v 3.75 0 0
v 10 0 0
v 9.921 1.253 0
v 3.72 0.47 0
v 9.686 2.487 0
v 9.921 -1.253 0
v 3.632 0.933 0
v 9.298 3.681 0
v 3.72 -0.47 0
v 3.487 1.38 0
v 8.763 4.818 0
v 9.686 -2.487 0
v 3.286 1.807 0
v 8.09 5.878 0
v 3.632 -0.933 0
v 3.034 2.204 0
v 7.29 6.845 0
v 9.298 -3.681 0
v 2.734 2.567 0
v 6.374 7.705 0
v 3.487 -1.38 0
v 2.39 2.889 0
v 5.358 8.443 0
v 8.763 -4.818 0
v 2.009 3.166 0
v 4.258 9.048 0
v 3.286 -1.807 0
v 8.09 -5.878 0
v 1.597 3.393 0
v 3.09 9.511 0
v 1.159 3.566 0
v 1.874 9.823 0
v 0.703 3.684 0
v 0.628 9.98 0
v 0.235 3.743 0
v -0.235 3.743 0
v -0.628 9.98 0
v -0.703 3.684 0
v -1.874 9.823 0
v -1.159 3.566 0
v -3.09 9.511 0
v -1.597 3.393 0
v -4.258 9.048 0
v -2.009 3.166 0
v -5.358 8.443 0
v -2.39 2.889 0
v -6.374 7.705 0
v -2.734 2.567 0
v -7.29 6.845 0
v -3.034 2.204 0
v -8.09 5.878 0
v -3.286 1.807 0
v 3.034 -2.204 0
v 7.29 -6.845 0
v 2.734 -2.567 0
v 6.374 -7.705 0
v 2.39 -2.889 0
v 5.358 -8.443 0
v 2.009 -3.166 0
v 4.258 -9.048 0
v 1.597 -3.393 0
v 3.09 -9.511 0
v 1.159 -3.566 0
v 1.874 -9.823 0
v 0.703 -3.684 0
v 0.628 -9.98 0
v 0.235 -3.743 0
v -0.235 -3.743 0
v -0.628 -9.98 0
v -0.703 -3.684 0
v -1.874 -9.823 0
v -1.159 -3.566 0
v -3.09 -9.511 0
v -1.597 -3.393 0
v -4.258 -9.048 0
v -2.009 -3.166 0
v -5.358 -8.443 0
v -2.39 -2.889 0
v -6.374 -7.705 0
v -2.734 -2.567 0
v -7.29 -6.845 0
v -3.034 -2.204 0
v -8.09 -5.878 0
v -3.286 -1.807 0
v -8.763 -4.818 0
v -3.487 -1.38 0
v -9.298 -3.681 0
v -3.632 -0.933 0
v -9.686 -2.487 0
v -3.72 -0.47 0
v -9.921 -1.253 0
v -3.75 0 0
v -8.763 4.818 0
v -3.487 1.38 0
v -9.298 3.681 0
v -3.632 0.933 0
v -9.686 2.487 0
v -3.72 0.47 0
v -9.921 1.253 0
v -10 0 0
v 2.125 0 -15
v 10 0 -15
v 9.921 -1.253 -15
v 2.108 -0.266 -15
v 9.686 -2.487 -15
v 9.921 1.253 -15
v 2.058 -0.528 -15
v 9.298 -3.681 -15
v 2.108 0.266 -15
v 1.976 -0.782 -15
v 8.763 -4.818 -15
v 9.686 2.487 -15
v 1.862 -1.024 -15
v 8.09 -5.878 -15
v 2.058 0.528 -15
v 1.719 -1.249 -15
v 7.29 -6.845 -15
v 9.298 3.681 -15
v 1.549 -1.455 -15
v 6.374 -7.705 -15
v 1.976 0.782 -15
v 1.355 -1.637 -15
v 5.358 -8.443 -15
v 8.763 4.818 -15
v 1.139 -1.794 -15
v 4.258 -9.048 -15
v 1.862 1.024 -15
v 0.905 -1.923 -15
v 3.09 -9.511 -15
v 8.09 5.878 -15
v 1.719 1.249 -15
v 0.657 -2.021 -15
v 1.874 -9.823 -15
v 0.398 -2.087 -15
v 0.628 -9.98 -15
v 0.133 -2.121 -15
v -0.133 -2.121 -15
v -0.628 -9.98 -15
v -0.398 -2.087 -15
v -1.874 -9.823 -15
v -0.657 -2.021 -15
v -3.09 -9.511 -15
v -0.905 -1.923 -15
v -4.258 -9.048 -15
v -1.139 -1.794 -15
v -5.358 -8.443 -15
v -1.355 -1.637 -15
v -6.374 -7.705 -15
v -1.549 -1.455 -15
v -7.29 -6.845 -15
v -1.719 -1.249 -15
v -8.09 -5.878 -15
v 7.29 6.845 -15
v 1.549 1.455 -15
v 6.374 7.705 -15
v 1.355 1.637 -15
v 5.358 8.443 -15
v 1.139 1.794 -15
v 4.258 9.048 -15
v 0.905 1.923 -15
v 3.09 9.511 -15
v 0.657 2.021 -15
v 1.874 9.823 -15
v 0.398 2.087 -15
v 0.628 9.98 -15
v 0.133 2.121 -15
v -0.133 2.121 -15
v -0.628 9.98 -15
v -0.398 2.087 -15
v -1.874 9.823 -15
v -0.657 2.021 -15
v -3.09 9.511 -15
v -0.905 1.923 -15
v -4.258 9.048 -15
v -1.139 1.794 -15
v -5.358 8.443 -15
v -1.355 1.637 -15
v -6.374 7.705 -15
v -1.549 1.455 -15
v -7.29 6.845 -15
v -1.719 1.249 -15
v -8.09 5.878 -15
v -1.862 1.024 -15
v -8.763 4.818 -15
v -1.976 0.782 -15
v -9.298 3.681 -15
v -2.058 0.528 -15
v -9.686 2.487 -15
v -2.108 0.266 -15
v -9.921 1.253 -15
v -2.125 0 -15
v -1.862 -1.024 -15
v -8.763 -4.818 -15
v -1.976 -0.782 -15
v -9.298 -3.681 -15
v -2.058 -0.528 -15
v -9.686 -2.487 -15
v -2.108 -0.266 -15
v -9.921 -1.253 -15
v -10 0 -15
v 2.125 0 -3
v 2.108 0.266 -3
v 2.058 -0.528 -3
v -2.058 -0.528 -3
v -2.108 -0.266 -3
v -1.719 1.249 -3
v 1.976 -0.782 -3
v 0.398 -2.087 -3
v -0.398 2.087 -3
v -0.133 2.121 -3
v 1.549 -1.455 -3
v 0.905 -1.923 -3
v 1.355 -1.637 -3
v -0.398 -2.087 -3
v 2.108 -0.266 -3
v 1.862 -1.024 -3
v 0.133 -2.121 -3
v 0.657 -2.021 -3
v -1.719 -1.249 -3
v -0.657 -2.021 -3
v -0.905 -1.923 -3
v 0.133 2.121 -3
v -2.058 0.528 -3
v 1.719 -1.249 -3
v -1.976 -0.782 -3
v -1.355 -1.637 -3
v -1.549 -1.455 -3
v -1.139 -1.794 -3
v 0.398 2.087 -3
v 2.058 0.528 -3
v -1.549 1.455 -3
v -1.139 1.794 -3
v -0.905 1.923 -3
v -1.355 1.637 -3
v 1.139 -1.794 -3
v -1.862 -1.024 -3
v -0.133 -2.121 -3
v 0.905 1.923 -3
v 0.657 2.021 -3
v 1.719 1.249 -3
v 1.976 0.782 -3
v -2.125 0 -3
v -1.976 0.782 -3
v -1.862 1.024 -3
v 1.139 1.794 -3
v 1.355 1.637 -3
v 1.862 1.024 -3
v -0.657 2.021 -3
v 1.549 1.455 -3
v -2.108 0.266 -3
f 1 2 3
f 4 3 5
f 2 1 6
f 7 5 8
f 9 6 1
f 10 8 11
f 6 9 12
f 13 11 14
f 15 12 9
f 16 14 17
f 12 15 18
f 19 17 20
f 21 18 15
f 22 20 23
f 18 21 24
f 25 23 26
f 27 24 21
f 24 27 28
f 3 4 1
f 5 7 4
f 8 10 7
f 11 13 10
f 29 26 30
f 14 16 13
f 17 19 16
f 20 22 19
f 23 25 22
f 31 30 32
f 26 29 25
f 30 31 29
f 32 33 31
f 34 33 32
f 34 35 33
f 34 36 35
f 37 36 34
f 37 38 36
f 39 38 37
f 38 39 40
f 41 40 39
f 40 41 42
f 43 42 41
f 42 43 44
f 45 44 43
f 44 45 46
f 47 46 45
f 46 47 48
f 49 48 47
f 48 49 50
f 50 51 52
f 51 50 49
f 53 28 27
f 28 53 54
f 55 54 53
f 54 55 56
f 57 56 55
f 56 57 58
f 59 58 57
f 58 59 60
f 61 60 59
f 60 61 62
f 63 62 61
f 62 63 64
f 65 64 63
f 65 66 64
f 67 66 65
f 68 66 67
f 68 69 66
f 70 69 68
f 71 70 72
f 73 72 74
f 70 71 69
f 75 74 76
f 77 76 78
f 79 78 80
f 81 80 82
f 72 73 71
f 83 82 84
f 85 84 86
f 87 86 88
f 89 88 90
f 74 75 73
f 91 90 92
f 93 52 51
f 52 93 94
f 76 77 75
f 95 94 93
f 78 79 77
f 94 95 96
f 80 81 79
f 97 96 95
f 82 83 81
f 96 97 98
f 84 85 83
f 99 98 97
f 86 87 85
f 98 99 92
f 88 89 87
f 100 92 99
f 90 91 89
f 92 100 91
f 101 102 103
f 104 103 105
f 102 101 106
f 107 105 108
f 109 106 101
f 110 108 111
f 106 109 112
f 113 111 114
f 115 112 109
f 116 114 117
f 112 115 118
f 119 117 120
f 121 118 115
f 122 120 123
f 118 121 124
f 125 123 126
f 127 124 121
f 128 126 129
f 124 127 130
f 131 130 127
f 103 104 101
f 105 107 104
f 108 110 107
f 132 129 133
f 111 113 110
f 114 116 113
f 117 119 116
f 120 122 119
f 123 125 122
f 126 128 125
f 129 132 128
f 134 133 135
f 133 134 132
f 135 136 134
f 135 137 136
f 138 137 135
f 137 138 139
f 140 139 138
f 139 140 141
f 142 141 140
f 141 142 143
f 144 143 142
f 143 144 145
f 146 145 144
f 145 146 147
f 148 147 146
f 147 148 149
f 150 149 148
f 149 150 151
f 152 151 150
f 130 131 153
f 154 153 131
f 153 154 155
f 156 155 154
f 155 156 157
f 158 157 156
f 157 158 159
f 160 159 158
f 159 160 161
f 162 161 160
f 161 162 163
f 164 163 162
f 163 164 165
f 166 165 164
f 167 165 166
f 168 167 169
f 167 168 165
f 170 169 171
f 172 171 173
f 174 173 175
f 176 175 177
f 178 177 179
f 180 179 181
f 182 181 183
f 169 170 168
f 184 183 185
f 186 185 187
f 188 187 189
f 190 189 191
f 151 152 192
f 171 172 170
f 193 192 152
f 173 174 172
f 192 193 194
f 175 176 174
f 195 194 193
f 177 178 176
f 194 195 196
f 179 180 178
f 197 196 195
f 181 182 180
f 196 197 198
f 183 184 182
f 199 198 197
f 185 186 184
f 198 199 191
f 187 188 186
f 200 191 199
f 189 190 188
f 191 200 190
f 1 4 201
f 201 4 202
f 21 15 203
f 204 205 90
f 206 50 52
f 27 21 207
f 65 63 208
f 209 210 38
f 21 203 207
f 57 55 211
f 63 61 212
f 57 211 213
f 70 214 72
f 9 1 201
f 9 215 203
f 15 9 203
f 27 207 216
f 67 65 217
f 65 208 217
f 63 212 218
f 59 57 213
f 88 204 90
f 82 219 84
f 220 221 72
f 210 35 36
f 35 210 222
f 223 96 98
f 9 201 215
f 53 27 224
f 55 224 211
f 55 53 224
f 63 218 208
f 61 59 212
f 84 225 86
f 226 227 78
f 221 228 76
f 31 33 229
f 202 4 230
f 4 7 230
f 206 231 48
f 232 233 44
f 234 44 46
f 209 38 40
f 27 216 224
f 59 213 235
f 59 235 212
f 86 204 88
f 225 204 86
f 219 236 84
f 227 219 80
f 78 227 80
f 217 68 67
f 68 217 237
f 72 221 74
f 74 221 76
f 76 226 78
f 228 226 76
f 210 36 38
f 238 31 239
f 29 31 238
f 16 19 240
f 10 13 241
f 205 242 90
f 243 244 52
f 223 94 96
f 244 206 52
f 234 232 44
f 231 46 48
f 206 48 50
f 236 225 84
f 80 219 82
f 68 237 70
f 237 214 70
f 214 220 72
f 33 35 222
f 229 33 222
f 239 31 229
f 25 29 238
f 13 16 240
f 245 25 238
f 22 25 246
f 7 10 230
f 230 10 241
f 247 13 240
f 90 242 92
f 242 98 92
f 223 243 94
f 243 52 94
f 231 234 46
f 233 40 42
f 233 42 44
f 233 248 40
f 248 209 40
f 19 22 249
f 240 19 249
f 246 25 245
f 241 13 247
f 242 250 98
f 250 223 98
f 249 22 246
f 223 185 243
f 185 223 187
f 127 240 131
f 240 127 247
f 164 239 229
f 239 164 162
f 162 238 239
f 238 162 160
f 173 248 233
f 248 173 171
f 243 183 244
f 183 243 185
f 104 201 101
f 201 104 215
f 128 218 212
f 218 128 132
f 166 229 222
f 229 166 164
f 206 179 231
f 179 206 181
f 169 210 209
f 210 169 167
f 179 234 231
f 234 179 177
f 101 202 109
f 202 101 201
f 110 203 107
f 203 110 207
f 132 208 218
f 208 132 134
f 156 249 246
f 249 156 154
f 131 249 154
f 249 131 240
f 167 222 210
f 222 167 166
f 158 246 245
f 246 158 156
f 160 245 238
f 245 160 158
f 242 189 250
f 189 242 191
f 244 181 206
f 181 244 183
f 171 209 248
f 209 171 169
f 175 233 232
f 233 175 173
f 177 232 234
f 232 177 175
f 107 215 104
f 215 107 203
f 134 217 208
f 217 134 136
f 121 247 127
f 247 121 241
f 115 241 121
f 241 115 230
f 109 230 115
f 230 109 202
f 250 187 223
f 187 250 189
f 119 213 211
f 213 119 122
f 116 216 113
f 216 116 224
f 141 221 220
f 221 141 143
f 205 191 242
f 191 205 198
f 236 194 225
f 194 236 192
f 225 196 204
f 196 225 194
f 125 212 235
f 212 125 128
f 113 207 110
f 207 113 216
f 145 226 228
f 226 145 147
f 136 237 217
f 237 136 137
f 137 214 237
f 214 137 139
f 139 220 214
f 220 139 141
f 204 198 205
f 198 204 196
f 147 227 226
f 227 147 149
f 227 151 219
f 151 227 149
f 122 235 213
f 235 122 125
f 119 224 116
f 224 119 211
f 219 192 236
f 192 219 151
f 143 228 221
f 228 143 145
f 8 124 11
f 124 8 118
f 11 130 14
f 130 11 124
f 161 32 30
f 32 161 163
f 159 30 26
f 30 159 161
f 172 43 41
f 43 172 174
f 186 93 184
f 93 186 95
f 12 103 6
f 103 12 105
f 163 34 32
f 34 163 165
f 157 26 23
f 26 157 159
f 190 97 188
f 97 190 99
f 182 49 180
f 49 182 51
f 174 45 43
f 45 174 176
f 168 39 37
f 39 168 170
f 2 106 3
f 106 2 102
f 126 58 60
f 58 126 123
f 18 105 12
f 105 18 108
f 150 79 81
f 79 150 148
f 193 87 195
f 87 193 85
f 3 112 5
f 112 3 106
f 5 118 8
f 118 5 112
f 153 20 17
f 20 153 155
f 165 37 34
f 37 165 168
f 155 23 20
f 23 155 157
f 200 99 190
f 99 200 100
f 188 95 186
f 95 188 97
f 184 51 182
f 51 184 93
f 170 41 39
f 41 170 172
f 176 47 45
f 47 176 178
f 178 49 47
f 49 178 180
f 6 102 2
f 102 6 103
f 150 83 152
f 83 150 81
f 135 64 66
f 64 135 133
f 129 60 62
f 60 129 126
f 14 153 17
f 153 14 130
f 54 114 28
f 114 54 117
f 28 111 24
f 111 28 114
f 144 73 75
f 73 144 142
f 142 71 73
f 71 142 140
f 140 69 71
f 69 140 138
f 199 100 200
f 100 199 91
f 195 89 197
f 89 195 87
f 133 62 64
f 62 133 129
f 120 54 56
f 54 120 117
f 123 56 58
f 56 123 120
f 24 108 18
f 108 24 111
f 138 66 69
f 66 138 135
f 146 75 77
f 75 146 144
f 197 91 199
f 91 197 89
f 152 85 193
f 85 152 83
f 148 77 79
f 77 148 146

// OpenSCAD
$fn = 50;


difference() {
	union() {
		translate(v = [0, 0, -15.0000000000]) {
			cylinder(h = 15, r = 10.0000000000);
		}
		cylinder(h = 0, r = 20.0000000000);
	}
	union() {
		translate(v = [0, 0, 0]) {
			rotate(a = [0, 0, 0]) {
				difference() {
					union() {
						#translate(v = [0, 0, -15.0000000000]) {
							cylinder(h = 15, r = 2.0000000000);
						}
						#translate(v = [0, 0, -3]) {
							cylinder(h = 3, r = 10.0000000000, r1 = 2.1250000000, r2 = 3.7500000000);
						}
						#translate(v = [0, 0, -15.0000000000]) {
							cylinder(h = 15, r = 2.1250000000);
						}
						#translate(v = [0, 0, -15.0000000000]) {
							cylinder(h = 15, r = 2.0000000000);
						}
					}
					union();
				}
			}
		}
	}
}
